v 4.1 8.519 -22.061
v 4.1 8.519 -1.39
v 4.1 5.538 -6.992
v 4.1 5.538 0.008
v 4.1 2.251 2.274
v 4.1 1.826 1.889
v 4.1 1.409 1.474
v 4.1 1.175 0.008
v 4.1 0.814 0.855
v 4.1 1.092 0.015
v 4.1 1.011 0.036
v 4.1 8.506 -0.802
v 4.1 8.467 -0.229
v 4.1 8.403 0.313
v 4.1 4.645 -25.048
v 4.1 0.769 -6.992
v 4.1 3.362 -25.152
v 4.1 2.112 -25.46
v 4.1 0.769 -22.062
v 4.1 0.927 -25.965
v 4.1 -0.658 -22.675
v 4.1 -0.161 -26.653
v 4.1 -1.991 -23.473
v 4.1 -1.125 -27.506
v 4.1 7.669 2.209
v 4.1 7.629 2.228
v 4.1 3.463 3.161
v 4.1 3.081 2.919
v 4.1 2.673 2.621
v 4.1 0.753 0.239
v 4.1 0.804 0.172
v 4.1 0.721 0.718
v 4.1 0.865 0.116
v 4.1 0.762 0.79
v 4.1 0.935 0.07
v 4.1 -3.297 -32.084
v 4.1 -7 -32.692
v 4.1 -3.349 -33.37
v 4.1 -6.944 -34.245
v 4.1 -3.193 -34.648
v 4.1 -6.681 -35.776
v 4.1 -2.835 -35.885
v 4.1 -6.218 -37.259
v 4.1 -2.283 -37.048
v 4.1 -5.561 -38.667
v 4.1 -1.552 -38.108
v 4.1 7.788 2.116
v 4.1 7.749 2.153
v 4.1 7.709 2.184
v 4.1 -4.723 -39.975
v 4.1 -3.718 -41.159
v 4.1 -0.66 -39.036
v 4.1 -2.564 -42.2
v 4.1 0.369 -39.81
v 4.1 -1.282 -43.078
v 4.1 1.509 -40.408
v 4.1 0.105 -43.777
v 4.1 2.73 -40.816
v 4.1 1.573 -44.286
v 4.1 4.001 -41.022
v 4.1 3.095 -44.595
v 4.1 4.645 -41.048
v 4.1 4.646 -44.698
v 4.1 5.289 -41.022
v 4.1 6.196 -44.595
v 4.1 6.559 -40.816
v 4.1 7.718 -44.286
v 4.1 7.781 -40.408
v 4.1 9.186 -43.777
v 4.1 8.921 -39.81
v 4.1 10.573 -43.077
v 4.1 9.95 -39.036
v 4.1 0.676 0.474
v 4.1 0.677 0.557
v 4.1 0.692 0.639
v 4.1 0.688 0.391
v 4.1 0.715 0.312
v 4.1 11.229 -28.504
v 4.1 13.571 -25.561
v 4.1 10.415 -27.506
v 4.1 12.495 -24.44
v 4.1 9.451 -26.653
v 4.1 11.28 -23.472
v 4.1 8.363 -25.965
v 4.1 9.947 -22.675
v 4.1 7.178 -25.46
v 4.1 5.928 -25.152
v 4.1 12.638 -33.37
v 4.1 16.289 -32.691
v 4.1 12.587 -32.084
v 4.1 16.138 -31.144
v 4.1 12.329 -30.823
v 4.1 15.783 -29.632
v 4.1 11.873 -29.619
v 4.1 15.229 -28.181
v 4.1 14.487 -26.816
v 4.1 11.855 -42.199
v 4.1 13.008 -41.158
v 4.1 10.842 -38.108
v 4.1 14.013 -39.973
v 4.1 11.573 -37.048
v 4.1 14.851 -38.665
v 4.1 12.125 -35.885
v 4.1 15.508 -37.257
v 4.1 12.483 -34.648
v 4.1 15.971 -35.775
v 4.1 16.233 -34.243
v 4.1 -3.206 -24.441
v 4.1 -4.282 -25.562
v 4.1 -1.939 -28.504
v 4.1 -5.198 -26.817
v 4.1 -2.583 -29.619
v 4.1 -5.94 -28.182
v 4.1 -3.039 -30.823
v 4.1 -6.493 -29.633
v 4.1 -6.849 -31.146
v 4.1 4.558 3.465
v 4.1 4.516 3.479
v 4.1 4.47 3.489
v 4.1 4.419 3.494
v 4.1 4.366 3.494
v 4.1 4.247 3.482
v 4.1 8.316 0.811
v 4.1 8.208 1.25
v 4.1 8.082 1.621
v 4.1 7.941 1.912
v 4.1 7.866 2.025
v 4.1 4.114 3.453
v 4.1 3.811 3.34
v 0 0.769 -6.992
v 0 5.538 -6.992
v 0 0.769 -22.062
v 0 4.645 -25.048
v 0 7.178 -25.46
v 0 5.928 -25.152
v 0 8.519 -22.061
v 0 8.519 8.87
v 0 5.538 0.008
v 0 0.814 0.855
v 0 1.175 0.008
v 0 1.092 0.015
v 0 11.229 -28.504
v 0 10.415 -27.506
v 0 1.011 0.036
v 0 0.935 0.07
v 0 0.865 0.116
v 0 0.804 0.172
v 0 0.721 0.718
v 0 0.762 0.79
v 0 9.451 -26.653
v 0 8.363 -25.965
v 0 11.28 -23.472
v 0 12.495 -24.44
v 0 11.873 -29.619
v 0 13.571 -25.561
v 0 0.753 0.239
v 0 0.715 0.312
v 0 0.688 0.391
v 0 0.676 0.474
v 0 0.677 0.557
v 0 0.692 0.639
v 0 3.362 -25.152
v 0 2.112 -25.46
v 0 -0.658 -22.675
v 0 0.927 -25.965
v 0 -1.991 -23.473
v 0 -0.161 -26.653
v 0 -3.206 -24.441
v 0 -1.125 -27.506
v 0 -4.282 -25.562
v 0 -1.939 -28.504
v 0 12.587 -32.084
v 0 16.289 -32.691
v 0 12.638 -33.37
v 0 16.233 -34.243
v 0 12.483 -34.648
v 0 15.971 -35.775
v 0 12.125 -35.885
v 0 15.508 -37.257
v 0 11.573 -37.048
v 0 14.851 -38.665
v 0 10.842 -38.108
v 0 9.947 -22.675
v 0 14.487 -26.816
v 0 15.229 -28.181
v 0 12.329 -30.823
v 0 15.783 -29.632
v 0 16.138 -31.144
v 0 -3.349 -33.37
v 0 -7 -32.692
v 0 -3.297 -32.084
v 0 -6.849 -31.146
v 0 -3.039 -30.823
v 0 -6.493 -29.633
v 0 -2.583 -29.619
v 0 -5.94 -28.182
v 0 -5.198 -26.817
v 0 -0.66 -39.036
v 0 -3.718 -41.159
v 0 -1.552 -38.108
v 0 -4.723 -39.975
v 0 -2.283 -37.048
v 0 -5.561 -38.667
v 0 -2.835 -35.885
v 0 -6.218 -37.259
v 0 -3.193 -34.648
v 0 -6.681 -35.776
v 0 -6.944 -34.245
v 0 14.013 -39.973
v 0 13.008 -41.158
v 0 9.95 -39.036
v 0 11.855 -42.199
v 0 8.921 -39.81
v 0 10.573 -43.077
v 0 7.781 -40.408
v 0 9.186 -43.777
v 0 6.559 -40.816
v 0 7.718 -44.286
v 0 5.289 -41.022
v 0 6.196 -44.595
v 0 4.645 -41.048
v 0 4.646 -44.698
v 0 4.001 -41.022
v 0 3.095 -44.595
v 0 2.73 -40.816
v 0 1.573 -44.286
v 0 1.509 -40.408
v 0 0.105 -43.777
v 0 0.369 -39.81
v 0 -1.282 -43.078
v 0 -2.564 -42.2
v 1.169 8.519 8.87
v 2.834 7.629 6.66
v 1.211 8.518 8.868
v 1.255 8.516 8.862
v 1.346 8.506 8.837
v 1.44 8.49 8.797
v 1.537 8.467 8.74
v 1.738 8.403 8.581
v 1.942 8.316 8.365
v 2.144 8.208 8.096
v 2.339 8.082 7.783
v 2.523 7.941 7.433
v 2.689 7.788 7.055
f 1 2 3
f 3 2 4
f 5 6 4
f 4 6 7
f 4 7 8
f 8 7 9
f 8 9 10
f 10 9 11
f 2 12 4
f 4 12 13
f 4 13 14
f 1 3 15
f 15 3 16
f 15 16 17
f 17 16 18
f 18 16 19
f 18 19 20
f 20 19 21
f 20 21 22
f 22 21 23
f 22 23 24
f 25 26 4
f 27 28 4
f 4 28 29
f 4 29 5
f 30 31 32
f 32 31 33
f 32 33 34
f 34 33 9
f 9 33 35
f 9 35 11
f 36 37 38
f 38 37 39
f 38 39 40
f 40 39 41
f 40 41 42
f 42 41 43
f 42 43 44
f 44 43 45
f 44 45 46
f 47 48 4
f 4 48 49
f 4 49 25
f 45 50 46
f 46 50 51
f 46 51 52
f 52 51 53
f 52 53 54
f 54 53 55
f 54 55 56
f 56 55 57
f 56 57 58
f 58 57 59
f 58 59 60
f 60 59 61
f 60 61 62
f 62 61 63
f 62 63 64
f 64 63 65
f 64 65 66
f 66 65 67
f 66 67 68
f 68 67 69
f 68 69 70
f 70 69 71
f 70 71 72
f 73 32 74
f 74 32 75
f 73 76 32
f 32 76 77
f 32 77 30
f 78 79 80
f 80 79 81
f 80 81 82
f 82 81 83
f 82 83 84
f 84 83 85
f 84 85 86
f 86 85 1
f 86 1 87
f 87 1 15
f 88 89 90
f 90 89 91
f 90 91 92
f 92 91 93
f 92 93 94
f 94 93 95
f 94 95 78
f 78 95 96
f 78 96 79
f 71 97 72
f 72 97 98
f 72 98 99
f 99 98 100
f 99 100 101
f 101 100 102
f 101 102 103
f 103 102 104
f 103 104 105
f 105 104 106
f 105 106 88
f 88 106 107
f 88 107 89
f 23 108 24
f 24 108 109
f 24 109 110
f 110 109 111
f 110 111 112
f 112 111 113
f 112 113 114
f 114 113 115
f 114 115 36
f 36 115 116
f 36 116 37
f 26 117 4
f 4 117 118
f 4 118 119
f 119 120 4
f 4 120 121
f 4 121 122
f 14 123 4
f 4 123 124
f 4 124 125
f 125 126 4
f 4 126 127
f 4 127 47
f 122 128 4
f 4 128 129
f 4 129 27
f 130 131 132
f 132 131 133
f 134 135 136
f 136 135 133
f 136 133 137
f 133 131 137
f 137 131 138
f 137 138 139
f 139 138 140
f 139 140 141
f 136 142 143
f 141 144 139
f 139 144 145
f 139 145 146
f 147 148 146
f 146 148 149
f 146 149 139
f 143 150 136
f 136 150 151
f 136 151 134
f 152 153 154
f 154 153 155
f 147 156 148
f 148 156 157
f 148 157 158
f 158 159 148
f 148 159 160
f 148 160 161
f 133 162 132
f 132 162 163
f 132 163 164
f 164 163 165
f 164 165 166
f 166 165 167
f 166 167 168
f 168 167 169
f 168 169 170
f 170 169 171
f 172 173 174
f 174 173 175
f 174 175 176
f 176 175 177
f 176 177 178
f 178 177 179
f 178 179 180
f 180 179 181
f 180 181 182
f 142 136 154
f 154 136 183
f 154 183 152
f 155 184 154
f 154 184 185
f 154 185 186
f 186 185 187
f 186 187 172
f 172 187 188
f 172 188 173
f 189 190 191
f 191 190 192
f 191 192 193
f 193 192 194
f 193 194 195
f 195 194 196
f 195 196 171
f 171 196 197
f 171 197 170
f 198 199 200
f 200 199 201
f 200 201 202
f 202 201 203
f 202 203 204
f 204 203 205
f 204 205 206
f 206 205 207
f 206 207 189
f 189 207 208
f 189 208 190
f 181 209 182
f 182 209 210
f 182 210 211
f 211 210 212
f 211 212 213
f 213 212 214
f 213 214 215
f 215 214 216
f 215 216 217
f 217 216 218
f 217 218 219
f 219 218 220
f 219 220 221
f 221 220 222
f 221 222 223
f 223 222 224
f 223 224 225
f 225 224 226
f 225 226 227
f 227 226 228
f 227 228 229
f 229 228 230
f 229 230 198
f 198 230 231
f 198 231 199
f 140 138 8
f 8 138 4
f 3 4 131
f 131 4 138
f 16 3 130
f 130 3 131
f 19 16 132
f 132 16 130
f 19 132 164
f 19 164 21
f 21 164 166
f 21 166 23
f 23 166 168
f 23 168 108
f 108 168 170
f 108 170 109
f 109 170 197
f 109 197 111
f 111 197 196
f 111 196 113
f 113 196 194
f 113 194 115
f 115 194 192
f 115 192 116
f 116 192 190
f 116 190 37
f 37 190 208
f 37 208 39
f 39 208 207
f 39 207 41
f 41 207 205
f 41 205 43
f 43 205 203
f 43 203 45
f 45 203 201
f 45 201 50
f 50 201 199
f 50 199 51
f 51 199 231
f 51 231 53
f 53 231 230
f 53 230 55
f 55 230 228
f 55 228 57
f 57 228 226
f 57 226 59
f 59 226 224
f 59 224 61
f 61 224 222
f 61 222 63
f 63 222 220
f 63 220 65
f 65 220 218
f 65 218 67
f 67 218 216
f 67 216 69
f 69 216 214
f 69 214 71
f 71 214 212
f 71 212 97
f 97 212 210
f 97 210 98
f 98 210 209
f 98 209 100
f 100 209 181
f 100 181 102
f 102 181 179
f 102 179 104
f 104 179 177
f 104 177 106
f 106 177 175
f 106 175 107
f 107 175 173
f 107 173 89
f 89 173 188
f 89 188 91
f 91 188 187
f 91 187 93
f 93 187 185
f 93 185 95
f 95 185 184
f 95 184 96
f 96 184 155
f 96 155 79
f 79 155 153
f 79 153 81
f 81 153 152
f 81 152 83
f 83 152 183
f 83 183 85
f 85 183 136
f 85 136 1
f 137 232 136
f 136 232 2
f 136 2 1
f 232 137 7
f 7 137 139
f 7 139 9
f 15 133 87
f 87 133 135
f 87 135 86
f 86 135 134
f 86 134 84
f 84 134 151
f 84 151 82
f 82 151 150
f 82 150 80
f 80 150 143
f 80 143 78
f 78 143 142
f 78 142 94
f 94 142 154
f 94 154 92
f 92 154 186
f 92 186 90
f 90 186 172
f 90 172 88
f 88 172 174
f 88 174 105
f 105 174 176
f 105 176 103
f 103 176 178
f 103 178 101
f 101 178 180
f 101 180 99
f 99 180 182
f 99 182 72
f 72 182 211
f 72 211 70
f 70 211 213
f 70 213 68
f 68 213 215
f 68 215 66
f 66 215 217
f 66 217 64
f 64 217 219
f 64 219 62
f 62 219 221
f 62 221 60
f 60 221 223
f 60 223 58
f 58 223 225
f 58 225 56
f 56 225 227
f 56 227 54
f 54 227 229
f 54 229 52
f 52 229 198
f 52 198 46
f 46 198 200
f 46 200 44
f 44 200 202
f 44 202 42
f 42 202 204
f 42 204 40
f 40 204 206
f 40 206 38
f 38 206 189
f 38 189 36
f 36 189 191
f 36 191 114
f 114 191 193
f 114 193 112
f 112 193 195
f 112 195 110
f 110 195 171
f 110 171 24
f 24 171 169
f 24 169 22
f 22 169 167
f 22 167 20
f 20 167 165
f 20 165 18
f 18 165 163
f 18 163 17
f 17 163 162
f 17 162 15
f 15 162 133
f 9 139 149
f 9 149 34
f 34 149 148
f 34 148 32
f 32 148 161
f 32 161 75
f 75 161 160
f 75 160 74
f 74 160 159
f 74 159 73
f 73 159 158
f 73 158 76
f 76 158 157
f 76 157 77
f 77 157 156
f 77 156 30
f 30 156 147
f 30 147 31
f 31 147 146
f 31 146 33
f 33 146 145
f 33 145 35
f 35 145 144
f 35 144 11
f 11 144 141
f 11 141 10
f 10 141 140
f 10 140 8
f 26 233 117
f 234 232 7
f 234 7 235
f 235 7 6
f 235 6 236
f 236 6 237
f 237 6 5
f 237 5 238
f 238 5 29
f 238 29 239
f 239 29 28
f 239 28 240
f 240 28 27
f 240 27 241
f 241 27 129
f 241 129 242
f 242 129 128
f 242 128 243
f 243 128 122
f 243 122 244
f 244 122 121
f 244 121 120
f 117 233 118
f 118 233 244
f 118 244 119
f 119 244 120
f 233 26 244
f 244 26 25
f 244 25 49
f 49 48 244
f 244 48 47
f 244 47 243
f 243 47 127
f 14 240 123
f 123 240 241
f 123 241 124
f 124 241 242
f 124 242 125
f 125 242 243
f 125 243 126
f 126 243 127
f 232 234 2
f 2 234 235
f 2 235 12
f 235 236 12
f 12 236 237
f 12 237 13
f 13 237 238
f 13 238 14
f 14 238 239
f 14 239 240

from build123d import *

# Parameters (mm, degrees)
SKETCH1_R           = 8
BOSS_EXTRUDE1_DEPTH = 4.1
FILLET1_R           = 0.5
CHAMFER1_START      = 5.365714371
CHAMFER1_OUTLINE_W  = 7
CHAMFER1_OUTLINE_H  = 10
CHAMFER1_DEPTH      = 2.634285629
FILLET2_R           = 1


with BuildPart() as part:
    # Sketch1 → Boss-Extrude1 (new body)
    with BuildSketch(Plane(origin=(0, 0, 0), x_dir=(0, 0, -1), z_dir=(1, 0, 0))):
        with BuildLine():
            Line((-0.008202263, 0.000360071), (-8.869837301, 8.519305154))
            Line((-8.869837301, 8.519305154), (22.061371293, 8.519305154))
            ThreePointArc((22.061371293, 8.519305154), (44.698252536, 4.645550739), (22.061797737, 0.769305154))
            Line((22.061797737, 0.769305154), (6.991797737, 0.769305154))
            Line((6.991797737, 0.769305154), (6.991797737, 5.53817988))
            Line((6.991797737, 5.53817988), (-0.008202263, 5.53817988))
            Line((-0.008202263, 5.53817988), (-0.008202263, 0.000360071))
        make_face()
        with Locations((33.048252553, 4.644909697)):
            Circle(SKETCH1_R, mode=Mode.SUBTRACT)
    extrude(amount=BOSS_EXTRUDE1_DEPTH)

    # Fillet1
    fillet1_edges = [part.edges().sort_by_distance(p)[0] for p in [
        (2.05, 0.000360071, 0.008202263),
    ]]
    fillet(fillet1_edges, radius=FILLET1_R)

    # Chamfer1: read off the stored shape, not the designer's step
    # Chamfer1 outline → Chamfer1 (cut)
    with BuildSketch(Plane(origin=(0, 0, 0), x_dir=(-0.10573160402996473, 0.993935733552454, -0.03020902972284707), z_dir=(0.955693010226633, 0.10996252801543402, 0.273055145779038)).offset(CHAMFER1_START)):
        with Locations((5.5, 4)):
            Rectangle(CHAMFER1_OUTLINE_W, CHAMFER1_OUTLINE_H)
    extrude(amount=CHAMFER1_DEPTH, mode=Mode.SUBTRACT)

    # Fillet2
    fillet2_edges = [part.edges().sort_by_distance(p)[0] for p in [
        (3.1, 8.519305154, 5.369837302),
        (3.1, 6.093699523, 6.346657301),
    ]]
    fillet(fillet2_edges, radius=FILLET2_R)


solid = part.part
